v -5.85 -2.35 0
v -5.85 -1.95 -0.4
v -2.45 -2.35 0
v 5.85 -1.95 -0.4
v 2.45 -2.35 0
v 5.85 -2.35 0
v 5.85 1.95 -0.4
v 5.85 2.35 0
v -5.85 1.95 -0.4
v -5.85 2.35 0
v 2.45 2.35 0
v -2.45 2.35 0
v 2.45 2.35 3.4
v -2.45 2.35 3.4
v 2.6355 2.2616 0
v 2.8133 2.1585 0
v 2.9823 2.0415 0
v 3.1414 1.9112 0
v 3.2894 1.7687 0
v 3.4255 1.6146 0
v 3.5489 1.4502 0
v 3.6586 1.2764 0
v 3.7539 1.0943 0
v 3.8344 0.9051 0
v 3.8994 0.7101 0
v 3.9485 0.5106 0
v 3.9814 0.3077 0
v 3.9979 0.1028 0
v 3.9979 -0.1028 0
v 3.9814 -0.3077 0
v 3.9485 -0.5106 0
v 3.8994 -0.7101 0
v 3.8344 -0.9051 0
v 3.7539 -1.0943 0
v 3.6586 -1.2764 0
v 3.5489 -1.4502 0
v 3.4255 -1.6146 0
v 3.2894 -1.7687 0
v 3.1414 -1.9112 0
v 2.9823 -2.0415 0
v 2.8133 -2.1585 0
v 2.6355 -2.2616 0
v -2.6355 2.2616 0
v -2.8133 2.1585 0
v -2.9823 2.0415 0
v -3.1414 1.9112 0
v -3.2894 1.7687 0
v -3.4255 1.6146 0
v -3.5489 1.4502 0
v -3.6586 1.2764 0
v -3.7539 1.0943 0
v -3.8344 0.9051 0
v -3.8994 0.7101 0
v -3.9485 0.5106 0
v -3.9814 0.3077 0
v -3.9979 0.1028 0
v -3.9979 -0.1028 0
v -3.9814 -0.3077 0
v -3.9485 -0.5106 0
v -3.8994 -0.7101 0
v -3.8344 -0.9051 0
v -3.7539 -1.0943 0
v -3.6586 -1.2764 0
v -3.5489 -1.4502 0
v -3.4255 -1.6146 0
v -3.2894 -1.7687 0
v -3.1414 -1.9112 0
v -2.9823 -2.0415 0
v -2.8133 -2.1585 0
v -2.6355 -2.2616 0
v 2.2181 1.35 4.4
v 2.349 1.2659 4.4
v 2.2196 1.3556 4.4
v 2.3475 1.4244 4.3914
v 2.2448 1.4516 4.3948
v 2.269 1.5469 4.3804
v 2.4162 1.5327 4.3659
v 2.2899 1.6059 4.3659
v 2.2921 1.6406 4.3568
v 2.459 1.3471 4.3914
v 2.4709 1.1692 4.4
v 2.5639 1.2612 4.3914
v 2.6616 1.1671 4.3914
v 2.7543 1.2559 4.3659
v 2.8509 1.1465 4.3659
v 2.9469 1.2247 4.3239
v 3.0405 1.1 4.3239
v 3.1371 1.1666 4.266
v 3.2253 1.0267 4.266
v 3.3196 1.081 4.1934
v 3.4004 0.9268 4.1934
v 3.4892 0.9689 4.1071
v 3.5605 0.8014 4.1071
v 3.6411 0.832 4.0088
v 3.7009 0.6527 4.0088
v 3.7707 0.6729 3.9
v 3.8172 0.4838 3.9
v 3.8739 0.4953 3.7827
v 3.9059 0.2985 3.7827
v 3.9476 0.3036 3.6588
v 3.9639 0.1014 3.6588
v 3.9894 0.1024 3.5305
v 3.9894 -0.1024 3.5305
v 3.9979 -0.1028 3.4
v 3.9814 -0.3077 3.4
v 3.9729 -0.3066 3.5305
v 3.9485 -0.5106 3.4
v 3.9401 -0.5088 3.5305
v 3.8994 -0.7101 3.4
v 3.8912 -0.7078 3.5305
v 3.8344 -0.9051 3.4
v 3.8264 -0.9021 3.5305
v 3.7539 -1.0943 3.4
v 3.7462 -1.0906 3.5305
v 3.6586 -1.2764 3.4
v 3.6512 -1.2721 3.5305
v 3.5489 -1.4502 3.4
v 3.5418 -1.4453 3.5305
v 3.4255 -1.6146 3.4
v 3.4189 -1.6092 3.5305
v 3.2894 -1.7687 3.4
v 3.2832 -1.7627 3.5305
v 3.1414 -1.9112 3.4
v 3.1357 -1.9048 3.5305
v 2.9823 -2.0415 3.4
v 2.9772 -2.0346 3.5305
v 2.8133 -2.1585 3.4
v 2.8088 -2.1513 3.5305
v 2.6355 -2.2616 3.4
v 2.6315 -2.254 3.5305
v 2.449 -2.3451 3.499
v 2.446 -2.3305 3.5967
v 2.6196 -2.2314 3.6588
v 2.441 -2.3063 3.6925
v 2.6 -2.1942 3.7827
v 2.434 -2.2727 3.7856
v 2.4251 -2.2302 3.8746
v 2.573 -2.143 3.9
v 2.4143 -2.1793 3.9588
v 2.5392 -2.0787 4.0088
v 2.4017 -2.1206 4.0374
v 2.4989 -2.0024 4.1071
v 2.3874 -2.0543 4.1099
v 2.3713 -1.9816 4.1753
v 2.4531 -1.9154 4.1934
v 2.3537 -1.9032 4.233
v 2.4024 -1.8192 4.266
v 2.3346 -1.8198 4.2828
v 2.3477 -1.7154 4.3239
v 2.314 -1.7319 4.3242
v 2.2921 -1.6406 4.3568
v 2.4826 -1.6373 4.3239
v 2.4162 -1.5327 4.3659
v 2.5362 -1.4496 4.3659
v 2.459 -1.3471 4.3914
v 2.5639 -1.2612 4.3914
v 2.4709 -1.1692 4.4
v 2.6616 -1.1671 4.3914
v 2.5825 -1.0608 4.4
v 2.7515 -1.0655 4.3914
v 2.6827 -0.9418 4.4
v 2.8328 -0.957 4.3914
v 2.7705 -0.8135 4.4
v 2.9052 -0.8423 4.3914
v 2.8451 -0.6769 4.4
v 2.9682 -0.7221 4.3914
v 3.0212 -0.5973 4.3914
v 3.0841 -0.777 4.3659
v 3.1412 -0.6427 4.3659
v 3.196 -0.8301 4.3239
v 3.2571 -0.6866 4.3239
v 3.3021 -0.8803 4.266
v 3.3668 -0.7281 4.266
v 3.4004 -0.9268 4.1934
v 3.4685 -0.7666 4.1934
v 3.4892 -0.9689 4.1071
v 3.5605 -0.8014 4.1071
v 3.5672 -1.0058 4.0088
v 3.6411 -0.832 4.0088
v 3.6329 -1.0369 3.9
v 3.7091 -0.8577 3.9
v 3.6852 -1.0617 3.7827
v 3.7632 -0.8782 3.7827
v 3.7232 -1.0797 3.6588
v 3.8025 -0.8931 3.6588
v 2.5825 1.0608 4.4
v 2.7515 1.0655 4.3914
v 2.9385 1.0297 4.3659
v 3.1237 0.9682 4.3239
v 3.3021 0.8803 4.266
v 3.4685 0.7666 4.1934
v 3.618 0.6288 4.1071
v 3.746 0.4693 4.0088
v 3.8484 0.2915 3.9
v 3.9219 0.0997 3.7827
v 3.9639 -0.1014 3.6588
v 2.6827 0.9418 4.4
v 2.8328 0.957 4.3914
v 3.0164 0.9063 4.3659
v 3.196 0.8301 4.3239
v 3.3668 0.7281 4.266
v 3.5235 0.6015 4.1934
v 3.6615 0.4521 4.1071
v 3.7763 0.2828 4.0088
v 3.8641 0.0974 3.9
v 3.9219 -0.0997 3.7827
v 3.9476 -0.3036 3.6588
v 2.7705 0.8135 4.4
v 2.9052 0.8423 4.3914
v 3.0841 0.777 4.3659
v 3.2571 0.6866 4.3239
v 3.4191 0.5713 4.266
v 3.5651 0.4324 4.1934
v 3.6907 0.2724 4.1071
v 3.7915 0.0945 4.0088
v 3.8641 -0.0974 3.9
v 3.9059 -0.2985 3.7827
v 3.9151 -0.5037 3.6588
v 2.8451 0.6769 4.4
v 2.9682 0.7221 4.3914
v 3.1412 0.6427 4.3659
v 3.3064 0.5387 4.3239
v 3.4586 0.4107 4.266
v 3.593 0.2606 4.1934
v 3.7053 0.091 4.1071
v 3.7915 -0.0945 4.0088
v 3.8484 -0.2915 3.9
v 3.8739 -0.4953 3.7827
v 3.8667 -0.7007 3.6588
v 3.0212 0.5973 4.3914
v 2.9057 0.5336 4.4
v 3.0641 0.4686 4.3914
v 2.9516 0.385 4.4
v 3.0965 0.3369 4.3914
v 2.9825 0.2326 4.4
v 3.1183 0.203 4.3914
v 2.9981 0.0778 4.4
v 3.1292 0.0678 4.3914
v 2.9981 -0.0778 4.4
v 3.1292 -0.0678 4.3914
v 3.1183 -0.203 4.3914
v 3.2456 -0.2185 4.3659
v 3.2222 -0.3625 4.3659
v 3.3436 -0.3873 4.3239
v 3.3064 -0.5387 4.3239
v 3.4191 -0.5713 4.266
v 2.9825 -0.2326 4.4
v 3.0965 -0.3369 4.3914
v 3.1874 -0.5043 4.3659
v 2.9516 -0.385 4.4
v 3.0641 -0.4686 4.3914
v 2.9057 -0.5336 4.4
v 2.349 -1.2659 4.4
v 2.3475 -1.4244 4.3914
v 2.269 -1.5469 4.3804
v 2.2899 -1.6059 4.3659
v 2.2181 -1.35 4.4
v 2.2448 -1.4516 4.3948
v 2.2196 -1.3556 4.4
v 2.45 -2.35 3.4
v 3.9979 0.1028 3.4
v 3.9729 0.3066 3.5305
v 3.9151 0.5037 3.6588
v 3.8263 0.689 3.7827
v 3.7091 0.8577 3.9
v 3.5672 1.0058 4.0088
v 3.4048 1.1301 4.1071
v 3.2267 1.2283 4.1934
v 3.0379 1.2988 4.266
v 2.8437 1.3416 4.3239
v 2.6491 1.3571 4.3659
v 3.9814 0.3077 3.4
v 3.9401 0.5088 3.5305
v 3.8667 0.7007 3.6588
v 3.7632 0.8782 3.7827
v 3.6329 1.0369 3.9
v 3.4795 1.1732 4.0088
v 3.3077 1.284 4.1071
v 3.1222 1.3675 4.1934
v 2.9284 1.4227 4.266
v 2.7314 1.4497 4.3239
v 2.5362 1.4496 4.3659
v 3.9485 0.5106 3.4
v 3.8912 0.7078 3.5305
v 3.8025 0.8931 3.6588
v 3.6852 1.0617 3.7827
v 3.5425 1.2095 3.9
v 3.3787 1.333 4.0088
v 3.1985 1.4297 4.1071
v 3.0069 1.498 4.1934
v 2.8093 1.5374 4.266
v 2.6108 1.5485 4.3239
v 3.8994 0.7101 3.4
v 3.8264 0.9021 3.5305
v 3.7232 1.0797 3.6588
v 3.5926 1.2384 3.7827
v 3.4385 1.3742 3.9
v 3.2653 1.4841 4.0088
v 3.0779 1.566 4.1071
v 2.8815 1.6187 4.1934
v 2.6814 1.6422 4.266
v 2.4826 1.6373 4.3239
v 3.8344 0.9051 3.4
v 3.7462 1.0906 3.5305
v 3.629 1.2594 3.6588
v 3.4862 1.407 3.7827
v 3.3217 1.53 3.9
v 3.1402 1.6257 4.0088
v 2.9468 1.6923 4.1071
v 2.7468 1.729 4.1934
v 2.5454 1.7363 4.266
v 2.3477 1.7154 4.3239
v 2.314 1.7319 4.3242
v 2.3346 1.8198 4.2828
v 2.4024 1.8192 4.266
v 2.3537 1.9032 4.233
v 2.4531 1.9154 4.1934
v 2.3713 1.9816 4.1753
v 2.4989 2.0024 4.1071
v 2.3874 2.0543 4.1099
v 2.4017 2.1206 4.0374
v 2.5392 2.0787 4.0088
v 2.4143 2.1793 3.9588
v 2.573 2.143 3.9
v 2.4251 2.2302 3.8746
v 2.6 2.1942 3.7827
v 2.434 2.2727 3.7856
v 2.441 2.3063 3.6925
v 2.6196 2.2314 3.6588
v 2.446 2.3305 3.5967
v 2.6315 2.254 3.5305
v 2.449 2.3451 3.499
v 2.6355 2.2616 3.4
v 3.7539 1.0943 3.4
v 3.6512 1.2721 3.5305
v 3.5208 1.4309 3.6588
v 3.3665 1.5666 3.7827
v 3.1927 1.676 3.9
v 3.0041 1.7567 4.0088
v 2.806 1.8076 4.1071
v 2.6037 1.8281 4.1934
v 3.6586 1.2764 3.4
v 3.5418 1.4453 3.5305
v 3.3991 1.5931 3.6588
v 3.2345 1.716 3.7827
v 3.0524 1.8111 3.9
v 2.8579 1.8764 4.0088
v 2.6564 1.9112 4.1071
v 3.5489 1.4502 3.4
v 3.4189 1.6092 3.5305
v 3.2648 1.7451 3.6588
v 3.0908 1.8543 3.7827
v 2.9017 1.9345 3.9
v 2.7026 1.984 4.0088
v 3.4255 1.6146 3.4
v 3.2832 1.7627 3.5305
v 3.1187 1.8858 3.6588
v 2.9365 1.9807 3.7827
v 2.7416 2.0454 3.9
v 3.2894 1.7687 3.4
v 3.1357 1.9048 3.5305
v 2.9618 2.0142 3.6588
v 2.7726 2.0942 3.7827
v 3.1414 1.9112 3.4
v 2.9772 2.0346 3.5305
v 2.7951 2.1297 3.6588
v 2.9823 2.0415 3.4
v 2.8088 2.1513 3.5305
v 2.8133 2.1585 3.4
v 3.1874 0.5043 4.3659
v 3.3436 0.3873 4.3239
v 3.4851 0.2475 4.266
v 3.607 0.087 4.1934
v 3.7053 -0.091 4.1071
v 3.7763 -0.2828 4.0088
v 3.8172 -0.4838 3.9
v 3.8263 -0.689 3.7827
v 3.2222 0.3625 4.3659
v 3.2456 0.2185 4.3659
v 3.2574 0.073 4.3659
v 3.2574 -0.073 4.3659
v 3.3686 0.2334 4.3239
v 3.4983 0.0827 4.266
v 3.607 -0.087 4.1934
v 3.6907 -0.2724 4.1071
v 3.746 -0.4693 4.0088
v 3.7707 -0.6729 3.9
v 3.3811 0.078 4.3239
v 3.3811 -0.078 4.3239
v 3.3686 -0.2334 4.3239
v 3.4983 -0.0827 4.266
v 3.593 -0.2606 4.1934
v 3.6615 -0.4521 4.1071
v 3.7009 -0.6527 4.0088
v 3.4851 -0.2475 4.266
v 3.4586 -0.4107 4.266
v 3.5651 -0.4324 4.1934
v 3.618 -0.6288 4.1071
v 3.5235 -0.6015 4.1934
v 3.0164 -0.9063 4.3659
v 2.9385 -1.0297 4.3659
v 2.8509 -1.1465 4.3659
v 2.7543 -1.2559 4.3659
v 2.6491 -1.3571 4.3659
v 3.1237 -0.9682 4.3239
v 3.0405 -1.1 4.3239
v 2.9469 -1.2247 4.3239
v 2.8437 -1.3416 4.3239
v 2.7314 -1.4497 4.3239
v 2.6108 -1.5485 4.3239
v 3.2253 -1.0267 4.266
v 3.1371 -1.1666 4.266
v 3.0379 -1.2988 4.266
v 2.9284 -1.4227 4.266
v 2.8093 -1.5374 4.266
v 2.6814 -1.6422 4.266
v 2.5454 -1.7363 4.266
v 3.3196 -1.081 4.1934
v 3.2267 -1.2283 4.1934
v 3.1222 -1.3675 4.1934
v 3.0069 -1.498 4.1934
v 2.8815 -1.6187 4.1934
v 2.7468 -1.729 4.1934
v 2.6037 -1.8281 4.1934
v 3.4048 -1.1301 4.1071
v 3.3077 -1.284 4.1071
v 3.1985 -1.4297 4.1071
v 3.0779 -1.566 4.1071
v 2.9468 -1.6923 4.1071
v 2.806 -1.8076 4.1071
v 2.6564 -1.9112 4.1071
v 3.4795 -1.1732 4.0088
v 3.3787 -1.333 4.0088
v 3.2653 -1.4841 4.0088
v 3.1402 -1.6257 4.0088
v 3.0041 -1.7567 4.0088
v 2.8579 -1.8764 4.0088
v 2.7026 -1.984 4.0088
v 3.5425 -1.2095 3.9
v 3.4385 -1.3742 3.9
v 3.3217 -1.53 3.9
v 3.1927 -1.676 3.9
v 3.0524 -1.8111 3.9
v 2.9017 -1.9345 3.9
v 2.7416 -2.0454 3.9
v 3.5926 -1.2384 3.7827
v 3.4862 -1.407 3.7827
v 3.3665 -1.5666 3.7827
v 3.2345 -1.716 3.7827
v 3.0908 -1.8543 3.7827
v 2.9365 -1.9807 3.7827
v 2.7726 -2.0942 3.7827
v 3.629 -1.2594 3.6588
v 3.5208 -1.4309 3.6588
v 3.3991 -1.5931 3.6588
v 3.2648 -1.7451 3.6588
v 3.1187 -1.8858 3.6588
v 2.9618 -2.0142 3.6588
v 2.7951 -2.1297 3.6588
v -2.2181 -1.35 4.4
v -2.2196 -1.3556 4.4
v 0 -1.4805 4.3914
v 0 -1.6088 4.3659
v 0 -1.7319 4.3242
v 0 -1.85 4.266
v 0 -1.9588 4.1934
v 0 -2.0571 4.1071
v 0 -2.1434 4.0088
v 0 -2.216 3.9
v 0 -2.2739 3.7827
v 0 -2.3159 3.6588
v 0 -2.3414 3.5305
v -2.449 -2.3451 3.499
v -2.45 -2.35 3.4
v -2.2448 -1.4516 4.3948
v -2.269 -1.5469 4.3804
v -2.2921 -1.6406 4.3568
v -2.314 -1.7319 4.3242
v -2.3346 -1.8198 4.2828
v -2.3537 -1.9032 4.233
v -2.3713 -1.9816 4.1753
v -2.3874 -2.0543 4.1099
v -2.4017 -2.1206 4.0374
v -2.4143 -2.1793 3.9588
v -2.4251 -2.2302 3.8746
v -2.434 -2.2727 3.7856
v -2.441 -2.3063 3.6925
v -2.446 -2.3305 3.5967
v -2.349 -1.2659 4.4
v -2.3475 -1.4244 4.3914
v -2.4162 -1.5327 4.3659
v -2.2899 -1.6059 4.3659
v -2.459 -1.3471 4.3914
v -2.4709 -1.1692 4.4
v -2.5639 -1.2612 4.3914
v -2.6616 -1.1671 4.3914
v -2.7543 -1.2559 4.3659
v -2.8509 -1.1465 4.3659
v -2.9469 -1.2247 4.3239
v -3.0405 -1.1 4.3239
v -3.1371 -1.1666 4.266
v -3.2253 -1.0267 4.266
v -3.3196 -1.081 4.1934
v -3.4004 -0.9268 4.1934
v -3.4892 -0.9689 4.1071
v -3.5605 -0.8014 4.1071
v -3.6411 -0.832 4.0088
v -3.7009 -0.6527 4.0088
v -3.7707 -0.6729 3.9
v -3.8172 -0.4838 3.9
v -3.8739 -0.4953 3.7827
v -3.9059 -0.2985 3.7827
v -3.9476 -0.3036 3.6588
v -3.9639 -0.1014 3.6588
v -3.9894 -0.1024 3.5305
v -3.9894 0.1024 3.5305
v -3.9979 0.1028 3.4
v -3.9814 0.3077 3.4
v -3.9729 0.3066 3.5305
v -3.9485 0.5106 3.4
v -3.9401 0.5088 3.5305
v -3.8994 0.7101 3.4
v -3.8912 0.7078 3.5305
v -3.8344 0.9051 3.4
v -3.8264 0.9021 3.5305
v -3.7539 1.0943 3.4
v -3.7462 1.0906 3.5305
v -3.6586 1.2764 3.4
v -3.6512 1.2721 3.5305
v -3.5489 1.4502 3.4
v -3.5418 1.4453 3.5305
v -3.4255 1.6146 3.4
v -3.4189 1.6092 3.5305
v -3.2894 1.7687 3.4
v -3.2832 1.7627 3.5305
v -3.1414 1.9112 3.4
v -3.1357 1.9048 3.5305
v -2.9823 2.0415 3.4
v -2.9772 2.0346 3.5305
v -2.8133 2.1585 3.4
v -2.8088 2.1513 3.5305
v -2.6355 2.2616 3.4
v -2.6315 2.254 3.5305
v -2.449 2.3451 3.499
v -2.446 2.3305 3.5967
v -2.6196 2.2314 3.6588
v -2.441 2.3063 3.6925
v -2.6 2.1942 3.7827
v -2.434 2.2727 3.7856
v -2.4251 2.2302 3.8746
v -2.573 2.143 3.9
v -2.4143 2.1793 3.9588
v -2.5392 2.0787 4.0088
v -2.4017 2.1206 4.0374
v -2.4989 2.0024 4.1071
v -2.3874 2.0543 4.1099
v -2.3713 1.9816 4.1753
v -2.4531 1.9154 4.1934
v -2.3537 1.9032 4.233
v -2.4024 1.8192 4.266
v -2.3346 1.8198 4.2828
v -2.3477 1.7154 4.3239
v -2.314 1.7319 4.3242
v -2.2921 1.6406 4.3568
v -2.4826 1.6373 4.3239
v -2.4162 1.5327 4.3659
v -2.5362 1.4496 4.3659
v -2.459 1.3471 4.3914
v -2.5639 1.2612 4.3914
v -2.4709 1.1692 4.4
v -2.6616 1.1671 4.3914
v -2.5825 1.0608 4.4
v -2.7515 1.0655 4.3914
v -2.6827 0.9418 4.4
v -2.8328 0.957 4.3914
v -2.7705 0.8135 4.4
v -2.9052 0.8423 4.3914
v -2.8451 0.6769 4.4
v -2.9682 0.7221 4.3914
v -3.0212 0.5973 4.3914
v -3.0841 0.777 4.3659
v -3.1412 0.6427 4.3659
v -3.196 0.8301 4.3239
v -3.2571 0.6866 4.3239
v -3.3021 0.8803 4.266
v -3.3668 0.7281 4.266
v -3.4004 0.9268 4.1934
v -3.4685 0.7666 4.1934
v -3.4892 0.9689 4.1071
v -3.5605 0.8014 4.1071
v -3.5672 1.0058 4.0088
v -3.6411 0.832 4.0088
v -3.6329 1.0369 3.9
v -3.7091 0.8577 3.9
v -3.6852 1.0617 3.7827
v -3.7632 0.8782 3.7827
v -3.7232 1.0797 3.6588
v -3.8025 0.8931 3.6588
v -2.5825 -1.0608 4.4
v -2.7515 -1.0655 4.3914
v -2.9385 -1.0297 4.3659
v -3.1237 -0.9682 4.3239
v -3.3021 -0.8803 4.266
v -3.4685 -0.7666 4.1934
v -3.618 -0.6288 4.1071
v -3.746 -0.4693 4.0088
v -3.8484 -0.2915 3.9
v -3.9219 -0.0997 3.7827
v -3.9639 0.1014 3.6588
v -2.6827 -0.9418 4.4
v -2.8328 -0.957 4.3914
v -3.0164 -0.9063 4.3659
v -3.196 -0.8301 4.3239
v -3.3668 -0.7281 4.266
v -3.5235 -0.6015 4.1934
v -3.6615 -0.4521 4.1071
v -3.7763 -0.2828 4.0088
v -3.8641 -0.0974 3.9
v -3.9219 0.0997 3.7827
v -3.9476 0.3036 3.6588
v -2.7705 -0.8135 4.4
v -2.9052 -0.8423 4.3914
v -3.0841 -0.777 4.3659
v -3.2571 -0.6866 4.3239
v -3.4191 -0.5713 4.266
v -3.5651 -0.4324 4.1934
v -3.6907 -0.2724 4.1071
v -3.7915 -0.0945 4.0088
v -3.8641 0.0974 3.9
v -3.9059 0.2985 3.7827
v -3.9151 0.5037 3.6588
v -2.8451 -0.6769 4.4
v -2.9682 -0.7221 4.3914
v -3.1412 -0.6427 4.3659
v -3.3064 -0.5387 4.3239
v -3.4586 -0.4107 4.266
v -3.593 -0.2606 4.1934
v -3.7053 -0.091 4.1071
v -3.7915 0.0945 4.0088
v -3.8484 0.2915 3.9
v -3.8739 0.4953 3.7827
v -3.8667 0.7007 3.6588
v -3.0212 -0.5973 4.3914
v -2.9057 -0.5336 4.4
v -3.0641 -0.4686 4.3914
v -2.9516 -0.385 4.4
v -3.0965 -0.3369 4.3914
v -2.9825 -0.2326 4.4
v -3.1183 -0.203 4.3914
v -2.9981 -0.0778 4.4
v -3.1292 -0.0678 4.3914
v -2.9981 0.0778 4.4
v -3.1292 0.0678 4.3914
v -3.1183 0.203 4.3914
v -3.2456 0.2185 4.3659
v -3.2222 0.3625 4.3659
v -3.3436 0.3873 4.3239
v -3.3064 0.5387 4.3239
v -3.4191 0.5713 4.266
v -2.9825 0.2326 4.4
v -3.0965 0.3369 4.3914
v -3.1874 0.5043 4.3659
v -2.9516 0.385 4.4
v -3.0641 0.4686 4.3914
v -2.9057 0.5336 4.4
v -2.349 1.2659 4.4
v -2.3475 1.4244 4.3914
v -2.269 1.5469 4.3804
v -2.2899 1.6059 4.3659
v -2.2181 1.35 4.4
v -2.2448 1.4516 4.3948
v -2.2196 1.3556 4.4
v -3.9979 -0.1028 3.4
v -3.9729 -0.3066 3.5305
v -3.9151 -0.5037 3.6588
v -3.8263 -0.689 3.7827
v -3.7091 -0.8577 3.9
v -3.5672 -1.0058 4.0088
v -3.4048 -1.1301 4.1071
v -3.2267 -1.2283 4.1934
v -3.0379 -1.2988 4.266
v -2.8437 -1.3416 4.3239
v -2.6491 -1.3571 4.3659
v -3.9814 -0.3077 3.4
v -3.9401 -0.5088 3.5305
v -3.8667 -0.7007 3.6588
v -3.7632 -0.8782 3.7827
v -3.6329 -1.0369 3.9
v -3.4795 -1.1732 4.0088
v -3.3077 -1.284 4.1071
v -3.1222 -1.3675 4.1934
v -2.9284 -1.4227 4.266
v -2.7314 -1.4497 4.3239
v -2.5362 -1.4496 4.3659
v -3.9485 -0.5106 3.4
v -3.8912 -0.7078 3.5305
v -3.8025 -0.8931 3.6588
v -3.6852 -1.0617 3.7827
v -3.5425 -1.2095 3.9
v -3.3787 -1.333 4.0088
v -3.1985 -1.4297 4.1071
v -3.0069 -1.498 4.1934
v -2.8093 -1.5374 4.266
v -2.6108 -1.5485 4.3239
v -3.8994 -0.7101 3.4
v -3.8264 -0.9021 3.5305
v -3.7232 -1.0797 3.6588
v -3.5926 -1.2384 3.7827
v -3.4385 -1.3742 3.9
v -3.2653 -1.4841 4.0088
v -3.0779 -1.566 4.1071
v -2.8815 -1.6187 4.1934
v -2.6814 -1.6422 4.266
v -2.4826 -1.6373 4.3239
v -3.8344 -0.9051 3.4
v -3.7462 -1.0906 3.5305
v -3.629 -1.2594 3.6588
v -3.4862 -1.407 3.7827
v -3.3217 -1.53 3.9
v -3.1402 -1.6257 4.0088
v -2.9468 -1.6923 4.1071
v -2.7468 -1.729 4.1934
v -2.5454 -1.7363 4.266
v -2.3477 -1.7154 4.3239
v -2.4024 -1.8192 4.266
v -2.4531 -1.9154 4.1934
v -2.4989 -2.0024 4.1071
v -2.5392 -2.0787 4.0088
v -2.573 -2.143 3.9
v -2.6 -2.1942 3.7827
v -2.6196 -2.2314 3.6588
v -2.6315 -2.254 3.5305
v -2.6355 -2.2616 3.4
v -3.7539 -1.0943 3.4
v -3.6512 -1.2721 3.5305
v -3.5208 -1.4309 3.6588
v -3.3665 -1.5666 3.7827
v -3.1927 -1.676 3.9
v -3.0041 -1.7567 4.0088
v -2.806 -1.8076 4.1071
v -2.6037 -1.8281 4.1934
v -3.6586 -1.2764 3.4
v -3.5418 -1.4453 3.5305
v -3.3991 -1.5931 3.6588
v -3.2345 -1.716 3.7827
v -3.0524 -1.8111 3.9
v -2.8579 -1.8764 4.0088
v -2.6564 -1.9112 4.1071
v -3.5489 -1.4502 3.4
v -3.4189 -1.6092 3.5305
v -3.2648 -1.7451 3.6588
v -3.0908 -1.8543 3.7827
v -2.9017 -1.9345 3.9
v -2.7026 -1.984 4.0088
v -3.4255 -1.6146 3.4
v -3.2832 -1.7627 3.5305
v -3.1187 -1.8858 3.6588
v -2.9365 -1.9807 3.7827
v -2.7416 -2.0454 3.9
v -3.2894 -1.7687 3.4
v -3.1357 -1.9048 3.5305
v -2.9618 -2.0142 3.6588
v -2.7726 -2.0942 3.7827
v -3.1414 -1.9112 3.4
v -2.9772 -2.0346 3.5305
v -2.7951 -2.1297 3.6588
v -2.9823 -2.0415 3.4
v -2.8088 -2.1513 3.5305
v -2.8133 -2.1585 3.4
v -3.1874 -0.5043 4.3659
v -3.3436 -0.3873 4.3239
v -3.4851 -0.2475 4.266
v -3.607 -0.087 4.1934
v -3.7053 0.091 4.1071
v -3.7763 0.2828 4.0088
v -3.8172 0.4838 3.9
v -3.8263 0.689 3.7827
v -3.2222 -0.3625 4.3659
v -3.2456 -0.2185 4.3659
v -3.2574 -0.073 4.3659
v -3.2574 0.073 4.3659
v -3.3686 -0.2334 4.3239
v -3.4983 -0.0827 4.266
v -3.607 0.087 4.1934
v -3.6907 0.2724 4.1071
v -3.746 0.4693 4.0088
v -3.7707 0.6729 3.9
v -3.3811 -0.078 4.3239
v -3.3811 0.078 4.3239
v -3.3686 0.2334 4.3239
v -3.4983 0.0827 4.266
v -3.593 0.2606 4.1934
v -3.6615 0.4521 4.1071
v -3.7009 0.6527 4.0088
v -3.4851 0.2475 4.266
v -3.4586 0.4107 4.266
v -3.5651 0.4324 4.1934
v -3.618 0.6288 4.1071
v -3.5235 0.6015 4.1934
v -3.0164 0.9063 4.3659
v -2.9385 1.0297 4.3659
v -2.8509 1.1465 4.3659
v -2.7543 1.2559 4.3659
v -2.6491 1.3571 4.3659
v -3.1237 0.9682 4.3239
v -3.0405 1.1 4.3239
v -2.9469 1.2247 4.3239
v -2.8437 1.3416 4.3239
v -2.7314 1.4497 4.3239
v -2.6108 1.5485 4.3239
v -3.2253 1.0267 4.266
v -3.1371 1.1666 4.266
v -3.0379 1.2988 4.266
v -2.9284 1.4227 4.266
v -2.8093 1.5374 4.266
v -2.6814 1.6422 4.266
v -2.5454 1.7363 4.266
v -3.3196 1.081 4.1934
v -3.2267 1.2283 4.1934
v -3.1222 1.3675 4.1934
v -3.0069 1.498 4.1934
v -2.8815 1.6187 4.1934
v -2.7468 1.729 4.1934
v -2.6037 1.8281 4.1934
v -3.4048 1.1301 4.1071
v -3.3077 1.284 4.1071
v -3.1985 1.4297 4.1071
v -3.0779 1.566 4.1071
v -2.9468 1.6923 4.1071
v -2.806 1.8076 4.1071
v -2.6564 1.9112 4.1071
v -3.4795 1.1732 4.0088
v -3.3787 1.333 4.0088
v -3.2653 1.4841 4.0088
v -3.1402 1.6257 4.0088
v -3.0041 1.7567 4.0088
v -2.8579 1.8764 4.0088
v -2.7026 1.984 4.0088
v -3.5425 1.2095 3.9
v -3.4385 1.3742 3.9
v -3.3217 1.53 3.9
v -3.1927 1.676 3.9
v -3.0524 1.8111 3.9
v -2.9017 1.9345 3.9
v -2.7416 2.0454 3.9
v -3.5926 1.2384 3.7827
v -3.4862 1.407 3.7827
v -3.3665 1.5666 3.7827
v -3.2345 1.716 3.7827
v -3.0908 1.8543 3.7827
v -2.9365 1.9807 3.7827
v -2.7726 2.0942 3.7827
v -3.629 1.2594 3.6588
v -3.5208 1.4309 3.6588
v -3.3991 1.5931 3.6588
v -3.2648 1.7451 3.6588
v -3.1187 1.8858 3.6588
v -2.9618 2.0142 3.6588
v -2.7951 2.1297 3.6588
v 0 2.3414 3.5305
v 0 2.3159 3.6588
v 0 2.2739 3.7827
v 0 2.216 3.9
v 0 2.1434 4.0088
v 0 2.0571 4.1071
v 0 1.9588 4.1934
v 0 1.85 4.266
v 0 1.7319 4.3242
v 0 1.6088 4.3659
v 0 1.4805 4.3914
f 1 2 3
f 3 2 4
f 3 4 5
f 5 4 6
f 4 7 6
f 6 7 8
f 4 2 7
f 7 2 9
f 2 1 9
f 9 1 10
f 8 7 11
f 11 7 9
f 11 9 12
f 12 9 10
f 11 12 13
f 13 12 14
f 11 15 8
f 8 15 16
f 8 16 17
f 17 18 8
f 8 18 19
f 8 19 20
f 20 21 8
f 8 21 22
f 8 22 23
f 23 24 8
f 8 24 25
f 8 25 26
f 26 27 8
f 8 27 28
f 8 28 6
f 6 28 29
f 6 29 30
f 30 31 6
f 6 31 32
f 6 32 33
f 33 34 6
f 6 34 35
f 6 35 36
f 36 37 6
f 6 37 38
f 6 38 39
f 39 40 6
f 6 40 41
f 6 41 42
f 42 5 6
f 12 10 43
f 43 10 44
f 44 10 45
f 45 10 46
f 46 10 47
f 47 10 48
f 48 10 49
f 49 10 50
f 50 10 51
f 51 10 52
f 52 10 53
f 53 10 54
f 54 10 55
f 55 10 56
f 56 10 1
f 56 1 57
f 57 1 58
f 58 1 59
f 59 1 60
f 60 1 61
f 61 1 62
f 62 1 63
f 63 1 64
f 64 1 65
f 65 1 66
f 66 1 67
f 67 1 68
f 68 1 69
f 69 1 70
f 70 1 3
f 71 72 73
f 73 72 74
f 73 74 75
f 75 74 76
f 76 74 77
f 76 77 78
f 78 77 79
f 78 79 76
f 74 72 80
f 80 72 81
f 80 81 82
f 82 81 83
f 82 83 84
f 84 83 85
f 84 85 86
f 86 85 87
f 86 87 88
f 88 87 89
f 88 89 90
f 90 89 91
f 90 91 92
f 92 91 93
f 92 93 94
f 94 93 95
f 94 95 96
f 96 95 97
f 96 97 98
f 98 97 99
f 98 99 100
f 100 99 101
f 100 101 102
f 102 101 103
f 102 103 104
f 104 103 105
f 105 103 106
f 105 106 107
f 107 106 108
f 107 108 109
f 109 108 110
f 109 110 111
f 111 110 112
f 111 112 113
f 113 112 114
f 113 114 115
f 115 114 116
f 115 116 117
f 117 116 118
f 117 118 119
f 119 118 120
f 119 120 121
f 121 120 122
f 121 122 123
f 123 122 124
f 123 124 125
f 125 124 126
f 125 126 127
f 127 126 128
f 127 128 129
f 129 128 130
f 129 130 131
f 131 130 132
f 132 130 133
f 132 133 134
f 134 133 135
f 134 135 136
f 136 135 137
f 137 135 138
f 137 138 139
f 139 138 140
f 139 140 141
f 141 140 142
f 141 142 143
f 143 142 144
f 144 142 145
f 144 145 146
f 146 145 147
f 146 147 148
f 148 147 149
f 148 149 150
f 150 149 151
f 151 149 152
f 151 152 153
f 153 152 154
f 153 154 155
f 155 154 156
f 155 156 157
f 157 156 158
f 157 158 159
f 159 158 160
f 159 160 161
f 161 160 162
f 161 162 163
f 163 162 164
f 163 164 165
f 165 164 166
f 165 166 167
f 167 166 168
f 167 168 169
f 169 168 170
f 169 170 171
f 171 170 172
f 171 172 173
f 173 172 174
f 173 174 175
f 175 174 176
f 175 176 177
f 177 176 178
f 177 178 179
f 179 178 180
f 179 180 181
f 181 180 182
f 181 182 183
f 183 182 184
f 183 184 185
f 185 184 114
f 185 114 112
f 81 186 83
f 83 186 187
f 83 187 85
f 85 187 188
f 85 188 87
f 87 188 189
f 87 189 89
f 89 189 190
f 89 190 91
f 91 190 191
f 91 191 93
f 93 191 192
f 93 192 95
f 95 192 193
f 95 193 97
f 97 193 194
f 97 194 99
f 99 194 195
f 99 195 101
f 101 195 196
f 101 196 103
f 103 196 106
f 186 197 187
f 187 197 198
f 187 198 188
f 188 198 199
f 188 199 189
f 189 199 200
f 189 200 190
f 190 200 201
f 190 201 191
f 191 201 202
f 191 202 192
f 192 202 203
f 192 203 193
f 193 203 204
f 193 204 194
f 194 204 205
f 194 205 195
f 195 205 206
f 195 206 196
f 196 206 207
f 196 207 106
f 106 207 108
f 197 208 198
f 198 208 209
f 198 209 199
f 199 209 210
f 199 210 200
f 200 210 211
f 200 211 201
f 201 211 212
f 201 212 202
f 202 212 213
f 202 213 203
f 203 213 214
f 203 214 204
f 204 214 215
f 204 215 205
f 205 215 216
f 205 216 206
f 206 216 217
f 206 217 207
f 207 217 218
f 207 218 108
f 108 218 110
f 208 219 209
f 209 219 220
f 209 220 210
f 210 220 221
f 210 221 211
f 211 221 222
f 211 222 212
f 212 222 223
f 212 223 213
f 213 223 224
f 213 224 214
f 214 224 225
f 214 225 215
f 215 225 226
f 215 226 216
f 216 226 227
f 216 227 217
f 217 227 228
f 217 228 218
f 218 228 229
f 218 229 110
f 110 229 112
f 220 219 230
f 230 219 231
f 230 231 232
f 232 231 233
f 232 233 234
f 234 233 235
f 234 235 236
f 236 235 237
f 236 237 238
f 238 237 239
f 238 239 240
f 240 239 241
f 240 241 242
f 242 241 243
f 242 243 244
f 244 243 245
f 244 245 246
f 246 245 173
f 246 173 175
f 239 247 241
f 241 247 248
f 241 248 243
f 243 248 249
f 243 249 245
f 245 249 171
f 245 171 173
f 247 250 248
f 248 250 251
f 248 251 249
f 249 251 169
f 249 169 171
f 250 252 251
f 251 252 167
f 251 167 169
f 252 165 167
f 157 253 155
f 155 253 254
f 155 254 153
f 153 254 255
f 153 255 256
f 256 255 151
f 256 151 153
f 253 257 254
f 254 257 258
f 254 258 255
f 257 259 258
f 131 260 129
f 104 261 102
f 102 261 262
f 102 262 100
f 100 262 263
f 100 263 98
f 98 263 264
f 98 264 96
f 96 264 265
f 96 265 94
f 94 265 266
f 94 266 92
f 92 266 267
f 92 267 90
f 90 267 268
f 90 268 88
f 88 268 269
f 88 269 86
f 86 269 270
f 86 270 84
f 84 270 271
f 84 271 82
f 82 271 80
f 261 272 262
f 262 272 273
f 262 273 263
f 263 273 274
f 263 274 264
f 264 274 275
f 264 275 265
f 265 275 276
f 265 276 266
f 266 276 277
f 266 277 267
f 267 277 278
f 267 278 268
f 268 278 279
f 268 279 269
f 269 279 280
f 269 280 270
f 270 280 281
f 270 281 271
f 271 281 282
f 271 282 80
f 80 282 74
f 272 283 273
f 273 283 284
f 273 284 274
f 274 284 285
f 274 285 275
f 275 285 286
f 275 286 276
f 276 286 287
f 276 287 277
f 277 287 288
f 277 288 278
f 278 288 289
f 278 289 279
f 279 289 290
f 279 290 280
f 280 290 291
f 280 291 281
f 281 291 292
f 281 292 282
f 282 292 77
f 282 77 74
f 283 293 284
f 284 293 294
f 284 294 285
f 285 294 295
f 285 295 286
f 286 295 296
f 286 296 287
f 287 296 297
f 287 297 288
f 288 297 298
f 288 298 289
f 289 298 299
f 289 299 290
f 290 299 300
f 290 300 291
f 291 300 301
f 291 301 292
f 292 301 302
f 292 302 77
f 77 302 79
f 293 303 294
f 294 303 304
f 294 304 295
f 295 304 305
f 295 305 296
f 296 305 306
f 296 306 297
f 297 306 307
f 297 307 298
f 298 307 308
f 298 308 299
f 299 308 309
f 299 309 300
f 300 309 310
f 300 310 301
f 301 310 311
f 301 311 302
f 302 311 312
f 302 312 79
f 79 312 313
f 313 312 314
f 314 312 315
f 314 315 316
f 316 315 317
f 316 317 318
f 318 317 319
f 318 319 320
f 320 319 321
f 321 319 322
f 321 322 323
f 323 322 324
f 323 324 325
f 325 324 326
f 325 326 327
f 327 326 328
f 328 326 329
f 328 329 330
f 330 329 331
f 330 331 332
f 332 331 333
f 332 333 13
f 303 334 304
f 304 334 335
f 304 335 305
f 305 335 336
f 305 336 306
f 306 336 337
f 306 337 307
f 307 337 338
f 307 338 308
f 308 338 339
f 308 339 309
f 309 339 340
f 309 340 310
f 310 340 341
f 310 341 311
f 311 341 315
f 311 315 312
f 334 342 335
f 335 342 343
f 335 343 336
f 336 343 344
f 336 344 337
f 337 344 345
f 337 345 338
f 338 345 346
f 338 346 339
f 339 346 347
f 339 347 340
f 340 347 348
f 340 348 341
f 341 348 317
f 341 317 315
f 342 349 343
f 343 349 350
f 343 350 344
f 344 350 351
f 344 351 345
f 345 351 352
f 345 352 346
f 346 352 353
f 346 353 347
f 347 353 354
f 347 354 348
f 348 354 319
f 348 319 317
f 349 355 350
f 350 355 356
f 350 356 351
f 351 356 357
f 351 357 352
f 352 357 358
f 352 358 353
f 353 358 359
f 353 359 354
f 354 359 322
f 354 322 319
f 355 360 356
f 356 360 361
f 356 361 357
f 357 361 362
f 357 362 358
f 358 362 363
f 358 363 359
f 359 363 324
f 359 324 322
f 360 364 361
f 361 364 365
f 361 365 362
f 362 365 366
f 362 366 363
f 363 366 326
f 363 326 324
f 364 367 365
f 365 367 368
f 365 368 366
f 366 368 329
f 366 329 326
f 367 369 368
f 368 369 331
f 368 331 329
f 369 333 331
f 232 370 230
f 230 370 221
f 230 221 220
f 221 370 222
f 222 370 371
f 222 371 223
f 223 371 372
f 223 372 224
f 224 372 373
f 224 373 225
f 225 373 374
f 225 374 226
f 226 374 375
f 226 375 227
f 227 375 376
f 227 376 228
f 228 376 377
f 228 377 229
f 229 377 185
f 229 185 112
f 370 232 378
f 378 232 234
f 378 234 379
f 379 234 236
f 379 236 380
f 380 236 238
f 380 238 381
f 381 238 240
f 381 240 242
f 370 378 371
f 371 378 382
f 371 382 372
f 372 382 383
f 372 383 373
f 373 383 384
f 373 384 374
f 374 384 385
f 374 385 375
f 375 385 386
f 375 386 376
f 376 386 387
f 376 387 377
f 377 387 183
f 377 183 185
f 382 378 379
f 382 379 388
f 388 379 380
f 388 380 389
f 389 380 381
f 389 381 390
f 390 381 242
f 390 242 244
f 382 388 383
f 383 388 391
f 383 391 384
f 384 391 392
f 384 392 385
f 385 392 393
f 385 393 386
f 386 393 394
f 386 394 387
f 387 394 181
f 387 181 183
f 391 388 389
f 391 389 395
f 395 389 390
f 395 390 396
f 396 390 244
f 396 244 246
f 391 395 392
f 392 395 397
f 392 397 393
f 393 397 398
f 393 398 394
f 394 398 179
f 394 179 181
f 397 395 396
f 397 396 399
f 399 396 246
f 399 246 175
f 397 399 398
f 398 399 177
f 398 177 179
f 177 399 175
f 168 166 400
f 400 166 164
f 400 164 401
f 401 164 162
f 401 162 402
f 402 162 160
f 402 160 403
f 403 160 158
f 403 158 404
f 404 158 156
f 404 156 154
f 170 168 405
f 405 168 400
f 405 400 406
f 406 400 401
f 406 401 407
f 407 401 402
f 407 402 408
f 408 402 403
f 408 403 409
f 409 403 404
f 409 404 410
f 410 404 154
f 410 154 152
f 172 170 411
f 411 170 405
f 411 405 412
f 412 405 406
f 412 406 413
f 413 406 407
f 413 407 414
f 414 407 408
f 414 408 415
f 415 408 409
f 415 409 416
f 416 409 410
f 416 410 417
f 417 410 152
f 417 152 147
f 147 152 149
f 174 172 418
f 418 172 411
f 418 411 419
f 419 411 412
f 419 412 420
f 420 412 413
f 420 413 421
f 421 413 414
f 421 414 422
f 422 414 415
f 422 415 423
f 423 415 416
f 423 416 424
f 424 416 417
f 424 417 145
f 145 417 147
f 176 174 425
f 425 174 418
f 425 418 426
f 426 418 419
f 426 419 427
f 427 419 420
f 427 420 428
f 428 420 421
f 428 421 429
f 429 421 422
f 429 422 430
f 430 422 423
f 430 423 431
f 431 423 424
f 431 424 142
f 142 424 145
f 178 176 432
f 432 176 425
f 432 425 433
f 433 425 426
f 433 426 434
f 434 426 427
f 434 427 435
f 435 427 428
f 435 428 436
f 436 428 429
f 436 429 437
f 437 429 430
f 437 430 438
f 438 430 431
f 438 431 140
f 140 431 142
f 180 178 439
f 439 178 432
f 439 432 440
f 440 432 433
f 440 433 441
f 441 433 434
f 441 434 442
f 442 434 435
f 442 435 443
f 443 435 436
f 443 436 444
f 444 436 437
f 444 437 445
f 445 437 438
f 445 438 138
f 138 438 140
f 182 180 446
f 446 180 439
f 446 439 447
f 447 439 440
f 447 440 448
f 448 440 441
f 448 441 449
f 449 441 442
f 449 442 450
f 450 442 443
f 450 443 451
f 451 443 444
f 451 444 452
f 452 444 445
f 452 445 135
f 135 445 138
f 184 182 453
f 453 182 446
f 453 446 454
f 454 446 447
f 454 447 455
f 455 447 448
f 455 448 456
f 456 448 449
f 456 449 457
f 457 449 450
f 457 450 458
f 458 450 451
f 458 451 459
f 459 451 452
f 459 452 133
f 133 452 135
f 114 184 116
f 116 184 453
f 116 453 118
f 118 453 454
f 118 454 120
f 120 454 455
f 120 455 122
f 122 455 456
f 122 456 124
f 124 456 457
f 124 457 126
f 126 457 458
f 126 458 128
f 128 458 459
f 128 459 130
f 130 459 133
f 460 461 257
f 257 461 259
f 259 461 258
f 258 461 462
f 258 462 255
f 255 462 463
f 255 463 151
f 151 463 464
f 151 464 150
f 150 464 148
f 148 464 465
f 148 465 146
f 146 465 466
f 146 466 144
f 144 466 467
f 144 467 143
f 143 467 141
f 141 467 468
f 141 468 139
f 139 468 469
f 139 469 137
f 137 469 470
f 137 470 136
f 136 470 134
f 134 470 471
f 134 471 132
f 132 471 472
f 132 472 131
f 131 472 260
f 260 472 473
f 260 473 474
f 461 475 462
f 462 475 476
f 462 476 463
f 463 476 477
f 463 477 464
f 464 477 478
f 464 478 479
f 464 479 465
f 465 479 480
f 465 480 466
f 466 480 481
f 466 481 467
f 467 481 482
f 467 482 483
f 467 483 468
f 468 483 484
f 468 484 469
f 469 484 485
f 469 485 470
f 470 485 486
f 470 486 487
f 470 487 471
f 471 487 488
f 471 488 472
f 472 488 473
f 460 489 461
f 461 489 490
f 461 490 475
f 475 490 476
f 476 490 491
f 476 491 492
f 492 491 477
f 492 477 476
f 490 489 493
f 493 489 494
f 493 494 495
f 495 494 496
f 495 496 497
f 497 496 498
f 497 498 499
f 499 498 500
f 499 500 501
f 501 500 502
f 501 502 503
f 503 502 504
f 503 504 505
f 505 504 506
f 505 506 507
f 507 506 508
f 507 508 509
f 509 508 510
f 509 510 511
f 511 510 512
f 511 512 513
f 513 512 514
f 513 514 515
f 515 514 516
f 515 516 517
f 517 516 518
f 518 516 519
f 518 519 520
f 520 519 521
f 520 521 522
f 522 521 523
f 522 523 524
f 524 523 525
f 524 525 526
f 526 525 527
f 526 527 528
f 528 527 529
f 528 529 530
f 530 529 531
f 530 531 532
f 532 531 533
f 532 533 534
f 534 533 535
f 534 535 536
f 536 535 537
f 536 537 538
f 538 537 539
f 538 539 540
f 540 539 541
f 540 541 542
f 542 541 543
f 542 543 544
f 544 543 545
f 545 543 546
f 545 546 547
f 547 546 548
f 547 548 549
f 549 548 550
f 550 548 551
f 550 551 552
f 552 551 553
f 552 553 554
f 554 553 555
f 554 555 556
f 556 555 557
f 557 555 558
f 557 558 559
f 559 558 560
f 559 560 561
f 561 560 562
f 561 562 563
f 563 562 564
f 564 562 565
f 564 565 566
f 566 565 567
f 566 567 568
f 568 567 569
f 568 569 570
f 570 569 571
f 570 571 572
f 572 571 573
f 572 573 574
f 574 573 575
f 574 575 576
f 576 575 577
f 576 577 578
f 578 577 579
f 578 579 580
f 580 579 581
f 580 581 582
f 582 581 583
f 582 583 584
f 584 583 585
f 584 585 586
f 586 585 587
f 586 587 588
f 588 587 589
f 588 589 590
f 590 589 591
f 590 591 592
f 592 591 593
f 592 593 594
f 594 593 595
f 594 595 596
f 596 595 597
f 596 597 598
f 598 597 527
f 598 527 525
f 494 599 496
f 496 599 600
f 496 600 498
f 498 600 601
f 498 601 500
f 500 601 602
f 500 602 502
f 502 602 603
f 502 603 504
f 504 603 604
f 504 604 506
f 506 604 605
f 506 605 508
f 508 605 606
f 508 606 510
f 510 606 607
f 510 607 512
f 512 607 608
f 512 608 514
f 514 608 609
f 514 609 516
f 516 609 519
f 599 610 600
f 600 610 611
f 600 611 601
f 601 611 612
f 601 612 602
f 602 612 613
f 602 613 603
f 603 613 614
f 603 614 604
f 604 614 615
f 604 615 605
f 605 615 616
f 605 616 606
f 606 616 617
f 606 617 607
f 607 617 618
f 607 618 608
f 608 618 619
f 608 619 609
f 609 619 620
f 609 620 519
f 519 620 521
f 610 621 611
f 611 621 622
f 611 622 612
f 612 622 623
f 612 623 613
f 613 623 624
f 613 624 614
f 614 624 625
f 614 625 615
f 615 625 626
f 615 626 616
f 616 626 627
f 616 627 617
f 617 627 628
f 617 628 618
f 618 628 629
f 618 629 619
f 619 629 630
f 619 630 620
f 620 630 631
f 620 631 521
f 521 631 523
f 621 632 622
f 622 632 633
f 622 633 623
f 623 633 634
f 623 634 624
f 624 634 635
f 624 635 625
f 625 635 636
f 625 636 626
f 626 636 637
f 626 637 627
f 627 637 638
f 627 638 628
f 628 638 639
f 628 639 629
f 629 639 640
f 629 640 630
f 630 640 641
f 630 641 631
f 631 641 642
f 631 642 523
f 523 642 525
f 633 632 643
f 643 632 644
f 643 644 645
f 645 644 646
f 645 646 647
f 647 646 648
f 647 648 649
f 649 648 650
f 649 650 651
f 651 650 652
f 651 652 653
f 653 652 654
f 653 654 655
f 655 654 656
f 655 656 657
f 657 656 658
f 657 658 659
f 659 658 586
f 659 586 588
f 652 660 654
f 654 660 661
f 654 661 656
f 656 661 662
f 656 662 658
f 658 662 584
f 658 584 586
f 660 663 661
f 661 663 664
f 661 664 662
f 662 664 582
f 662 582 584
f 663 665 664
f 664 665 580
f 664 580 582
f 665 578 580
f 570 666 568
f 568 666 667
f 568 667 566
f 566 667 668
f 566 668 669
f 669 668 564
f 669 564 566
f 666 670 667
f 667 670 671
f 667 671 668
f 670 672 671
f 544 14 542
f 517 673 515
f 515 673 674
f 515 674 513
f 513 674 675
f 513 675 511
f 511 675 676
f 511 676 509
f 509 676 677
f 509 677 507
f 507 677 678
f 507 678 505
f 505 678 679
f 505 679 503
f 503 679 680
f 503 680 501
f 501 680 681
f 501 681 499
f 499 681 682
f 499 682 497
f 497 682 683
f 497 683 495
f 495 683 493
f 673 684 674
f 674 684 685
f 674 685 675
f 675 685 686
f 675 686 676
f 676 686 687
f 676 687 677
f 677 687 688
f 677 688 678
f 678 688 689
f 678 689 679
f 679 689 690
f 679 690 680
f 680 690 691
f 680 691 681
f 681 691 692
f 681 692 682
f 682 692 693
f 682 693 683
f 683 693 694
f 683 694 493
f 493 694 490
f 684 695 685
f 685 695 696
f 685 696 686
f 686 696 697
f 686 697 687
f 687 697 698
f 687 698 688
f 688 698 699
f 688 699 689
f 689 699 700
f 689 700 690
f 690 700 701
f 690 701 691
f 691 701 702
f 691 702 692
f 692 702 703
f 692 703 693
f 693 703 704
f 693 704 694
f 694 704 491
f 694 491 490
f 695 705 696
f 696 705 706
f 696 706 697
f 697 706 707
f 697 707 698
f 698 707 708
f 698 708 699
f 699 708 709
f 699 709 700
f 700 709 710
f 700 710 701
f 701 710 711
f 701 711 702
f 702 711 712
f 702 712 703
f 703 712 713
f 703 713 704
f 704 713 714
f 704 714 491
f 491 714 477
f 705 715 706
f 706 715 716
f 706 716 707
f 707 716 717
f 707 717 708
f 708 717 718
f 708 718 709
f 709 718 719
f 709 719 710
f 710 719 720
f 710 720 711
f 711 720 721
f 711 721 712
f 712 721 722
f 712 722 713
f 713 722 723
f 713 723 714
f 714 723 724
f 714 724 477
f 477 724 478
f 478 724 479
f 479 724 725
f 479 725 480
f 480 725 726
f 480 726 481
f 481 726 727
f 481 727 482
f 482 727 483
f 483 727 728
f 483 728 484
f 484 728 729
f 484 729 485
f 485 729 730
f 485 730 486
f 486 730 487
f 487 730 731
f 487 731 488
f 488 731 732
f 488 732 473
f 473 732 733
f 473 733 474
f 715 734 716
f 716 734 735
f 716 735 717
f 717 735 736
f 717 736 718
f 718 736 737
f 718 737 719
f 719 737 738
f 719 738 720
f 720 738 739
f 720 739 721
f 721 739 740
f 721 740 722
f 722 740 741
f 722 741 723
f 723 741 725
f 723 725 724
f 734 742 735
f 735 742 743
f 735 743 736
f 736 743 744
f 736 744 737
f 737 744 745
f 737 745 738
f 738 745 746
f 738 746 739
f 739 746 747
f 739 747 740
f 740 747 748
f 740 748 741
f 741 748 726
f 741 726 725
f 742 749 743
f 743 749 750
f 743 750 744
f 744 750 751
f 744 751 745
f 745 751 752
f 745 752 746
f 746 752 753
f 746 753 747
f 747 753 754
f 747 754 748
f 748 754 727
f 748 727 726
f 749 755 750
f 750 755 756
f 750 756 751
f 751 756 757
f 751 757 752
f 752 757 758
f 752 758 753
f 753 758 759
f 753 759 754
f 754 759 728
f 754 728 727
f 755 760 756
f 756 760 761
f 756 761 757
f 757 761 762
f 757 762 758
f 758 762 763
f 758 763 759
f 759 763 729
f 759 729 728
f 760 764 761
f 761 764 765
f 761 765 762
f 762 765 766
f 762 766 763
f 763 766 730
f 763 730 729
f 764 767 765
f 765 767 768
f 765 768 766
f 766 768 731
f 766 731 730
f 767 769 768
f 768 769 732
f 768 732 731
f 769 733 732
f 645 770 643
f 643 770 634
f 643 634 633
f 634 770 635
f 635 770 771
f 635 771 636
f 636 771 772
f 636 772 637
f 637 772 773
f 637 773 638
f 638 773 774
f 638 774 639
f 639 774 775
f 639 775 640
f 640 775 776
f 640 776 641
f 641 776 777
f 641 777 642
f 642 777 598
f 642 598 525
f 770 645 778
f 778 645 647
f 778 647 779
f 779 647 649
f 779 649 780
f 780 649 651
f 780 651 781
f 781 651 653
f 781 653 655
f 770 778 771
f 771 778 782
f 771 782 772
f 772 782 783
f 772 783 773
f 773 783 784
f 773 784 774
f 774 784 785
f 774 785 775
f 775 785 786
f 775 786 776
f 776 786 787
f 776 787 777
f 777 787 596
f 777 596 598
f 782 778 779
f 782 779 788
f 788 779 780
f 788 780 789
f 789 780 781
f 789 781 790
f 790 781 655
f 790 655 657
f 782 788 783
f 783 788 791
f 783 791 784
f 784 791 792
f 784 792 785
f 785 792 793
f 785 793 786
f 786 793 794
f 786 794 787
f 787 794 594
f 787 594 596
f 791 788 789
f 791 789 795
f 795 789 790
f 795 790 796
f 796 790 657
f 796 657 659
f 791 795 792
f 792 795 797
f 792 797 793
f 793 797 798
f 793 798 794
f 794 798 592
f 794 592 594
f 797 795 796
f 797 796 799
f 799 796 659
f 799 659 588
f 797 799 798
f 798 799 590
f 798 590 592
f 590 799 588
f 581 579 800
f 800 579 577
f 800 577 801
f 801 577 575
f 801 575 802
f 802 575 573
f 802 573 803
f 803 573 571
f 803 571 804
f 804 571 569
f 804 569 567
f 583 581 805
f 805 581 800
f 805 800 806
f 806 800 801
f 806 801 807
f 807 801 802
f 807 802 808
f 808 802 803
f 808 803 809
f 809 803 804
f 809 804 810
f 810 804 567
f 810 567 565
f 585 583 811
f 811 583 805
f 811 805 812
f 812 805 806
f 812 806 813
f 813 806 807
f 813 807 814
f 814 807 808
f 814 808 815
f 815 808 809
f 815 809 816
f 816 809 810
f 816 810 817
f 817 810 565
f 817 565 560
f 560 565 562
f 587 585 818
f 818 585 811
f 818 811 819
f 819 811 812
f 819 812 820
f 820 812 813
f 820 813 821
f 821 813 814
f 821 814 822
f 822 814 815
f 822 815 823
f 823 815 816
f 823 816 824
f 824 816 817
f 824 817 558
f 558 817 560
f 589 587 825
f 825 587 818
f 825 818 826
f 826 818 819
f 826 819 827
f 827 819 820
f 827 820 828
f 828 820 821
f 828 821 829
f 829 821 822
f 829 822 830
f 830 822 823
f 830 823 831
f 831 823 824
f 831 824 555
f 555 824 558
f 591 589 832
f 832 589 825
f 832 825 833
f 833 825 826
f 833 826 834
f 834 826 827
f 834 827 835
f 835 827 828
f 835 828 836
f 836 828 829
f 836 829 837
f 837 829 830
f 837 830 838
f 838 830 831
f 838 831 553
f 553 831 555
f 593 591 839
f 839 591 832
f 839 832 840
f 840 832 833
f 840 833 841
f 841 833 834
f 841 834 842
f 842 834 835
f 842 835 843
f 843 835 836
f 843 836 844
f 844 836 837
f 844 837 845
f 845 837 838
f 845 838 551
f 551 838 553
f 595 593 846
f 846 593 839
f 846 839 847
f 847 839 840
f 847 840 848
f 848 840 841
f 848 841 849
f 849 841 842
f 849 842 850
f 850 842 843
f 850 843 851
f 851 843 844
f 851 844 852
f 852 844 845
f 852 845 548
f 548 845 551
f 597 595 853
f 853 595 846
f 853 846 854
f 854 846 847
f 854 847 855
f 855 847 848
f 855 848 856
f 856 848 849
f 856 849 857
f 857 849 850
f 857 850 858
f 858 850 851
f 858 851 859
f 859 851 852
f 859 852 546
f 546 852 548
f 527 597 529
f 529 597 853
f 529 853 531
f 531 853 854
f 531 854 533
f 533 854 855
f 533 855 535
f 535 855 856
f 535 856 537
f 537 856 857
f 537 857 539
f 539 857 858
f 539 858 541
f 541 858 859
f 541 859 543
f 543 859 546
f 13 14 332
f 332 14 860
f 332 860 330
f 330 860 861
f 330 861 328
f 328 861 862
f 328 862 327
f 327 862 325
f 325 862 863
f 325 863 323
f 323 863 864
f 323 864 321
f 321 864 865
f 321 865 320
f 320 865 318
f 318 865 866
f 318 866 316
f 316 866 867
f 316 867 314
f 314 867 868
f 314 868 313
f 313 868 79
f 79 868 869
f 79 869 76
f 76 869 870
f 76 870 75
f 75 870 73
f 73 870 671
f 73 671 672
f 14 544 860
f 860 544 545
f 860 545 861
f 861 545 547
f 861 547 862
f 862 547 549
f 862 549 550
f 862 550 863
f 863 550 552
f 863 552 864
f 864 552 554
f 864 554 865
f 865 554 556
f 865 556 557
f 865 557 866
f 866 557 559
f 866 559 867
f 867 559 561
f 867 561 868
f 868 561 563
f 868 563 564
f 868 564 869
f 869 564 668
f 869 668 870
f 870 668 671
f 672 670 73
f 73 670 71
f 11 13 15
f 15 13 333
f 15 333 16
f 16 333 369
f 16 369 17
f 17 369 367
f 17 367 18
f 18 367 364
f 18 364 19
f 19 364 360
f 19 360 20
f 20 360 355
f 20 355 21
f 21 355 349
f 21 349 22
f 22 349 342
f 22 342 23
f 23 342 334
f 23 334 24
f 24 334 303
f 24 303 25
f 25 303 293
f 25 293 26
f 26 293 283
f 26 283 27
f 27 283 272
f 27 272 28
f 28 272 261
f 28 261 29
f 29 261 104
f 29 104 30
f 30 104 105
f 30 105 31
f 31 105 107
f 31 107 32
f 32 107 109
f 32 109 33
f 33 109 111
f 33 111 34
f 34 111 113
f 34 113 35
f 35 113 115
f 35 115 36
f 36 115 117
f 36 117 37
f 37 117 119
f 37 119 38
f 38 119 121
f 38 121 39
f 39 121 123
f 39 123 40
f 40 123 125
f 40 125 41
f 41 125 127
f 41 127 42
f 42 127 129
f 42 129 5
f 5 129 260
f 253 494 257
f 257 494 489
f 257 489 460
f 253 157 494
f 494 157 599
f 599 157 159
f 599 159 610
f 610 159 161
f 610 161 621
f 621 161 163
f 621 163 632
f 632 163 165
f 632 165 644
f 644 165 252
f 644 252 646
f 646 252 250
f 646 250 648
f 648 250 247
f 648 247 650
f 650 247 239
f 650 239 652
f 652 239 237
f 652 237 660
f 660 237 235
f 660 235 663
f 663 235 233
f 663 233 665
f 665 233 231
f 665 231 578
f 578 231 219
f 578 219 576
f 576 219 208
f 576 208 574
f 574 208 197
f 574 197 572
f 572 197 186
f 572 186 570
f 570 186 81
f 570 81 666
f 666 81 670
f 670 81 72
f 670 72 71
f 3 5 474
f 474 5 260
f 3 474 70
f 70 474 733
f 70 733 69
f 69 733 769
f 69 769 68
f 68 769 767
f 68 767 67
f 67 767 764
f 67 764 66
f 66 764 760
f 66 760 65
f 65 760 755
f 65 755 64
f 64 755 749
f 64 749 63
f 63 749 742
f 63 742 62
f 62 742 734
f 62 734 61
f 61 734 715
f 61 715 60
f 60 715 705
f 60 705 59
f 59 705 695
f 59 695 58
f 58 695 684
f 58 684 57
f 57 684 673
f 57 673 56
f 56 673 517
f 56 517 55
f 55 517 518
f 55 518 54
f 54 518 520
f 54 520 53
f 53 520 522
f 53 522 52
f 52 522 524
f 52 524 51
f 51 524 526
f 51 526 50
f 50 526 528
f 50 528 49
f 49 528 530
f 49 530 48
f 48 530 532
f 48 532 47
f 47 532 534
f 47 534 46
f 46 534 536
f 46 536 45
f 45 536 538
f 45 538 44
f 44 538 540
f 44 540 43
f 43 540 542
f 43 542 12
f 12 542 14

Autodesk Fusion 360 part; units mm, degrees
sketch "Sketch1" plane through (0, 0, 0) normal (0, 0, 1) x (1, 0, 0)
  arc A0 (2.4187, -2.2) -> (2.4187, 2.2) centre (1.4436, 0) ccw
  line L0 (-2.4187, 2.2) -> (2.4187, 2.2)
  arc A1 (-2.4187, 2.2) -> (-2.4187, -2.2) centre (-1.4436, 0) ccw
  line L1 (2.4187, -2.2) -> (-2.4187, -2.2)
  line L2 (6.85, -2.55) -> (-6.85, -2.55)
  line L3 (-6.85, 2.55) -> (-6.85, -2.55)
  line L4 (6.85, 2.55) -> (-6.85, 2.55)
  line L5 (6.85, 2.55) -> (6.85, -2.55)
  arc A2 (2.45, -2.35) -> (2.45, 2.35) centre (1.4436, 0) ccw
  line L6 (-2.45, 2.35) -> (2.45, 2.35)
  arc A3 (-2.45, 2.35) -> (-2.45, -2.35) centre (-1.4436, 0) ccw
  line L7 (2.45, -2.35) -> (-2.45, -2.35)
  dimension "d33" = 0.15
extrude "Extrude3" add sketch "Sketch1" against normal blind 0.4 contours A0 L0 A1 L1 | L2 L3 L4 L5 | A2 L6 A3 L7
extrude "Extrude4" add sketch "Sketch1" along normal blind 4.4 contours A0 L0 A1 L1 | A2 L6 A3 L7
extrude "Extrude7" cut 1 faces at (6.85, 0.85, -0.1333) along direction (-1, 0, 0) blind 1
extrude "Extrude8" cut 1 faces at (-6.85, 0.85, -0.1333) along direction (1, 0, 0) blind 1
fillet "Fillet3" radius 1 4 edges at (-4, 0, 4.4) (0, -2.35, 4.4) (0, 2.35, 4.4) (4, 0, 4.4)
extrude "Extrude9" cut 1 faces at (-1.95, -2.55, -0.2667) along direction (0, 1, 0) up to surface (0.2 mm away)
extrude "Extrude10" cut 1 faces at (-1.95, 2.55, -0.2667) along direction (0, -1, 0) up to surface (0.2 mm away)
sketch "Sketch2" plane through (0, -2.35, 0) normal (0, -1, 0) x (1, 0, 0)
  line L0 (2.45, 3.4) -> (-2.45, 3.4)
  line L1 (-2.45, 3.4) -> (-2.45, 0)
  line L2 (-2.45, 0) -> (-5.85, 0)
  line L3 (-5.85, 0) -> (-5.85, -0.4)
  line L4 (-5.85, -0.4) -> (5.85, -0.4)
  line L5 (5.85, -0.4) -> (5.85, 0)
  line L6 (5.85, 0) -> (2.45, 0)
  line L7 (2.45, 0) -> (2.45, 3.4)
  line L8 (-2.45, 0) -> (2.45, 0)
sketch "Sketch3" plane through (0, 2.35, 0) normal (0, 1, 0) x (-1, 0, 0)
  line L0 (2.45, 3.4) -> (-2.45, 3.4)
  line L1 (-2.45, 3.4) -> (-2.45, 0)
  line L2 (-2.45, 0) -> (-5.85, 0)
  line L3 (-5.85, 0) -> (-5.85, -0.4)
  line L4 (-5.85, -0.4) -> (5.85, -0.4)
  line L5 (5.85, -0.4) -> (5.85, 0)
  line L6 (5.85, 0) -> (2.45, 0)
  line L7 (2.45, 0) -> (2.45, 3.4)
  line L8 (-2.45, 0) -> (2.45, 0)
chamfer "Chamfer2" distance 0.4 angle 45 2 edges at (0, 2.35, -0.4) (0, -2.35, -0.4)
